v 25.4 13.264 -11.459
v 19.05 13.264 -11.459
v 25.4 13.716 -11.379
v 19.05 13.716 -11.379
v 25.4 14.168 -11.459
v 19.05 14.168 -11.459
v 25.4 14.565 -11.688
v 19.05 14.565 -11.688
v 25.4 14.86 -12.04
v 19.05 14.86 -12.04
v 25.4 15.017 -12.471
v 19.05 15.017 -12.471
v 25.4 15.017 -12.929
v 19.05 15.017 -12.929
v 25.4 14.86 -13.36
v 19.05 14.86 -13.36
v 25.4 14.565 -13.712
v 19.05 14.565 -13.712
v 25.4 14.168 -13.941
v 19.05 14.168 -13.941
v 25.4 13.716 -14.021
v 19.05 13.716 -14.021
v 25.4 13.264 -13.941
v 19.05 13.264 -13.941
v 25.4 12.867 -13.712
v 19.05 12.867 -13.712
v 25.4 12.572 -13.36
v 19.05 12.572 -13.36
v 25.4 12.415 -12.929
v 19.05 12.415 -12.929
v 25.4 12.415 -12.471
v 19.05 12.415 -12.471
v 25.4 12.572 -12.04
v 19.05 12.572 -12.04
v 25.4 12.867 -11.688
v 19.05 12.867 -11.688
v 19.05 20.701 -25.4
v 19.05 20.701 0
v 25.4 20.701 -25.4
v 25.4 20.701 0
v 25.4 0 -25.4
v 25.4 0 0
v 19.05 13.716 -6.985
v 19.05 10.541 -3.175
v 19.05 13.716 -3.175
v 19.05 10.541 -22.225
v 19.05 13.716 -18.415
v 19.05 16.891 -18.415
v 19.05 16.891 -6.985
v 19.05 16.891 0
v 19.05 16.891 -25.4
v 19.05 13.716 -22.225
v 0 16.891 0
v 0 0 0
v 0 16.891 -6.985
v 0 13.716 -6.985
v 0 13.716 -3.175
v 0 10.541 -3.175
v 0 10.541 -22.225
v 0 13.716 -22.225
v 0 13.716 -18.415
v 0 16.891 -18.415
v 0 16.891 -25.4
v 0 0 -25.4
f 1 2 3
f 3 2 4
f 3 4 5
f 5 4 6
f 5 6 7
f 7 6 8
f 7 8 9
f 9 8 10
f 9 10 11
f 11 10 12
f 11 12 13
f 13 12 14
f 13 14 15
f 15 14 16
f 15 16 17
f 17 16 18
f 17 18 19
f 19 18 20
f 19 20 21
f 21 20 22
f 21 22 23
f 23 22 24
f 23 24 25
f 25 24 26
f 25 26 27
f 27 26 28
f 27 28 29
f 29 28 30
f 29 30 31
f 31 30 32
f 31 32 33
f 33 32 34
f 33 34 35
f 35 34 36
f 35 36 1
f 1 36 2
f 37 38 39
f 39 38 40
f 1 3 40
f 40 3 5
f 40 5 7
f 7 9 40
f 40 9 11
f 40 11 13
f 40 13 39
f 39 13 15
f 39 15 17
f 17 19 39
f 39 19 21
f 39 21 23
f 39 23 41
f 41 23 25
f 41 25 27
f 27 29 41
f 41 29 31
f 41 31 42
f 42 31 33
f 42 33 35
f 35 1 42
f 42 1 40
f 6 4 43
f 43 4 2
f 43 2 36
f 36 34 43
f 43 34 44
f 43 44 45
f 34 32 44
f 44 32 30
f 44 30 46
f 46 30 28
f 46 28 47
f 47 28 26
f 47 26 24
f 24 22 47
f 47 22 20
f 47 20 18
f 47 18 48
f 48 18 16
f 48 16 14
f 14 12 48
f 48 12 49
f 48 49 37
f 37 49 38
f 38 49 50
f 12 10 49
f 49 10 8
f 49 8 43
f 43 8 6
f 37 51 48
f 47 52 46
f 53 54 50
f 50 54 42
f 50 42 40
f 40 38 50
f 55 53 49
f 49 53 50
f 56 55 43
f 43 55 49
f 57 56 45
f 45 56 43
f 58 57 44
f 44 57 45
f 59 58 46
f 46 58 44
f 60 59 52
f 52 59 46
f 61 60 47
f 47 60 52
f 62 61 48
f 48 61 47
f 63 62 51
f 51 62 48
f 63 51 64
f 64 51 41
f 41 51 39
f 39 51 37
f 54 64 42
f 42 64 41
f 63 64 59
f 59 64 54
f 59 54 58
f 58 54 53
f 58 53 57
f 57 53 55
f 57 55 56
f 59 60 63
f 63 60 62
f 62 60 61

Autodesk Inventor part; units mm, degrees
ref_plane "YZ Plane" through (0, 0, 0) normal (1, 0, 0) x (0, 1, 0)
ref_plane "XZ Plane" through (0, 0, 0) normal (0, 1, 0) x (-1, 0, 0)
ref_plane "XY Plane" through (0, 0, 0) normal (0, 0, 1) x (1, 0, 0)
sketch "Sketch1" plane through (0, 0, 0) normal (1, 0, 0) x (0, 1, 0)
  line L0 (0, 0) -> (16.891, 0)
  line L1 (16.891, 0) -> (16.891, -25.4)
  line L2 (16.891, -25.4) -> (0, -25.4)
  line L3 (0, -25.4) -> (0, 0)
  line L4 (16.891, -6.985) -> (13.716, -6.985)
  line L5 (13.716, -6.985) -> (13.716, -3.175)
  line L6 (13.716, -3.175) -> (10.541, -3.175)
  line L7 (10.541, -3.175) -> (10.541, -22.225)
  line L8 (10.541, -22.225) -> (13.716, -22.225)
  line L9 (13.716, -22.225) -> (13.716, -18.415)
  line L10 (13.716, -18.415) -> (16.891, -18.415)
  dimension "d0" = 25.4
  dimension "d1" = 11.43
  dimension "d2" = 19.05
  dimension "d3" = 3.81
  dimension "d4" = 6.985
  dimension "d5" = 3.175
  dimension "d6" = 6.35
  dimension "d7" = 16.891
extrude "Extrusion1" add sketch "Sketch1" along normal blind 19.05 contours L0 L1 L4 L5 L6 L7 L8 L9 L10 L2 L3
sketch "Sketch2" plane through (19.05, 0, 0) normal (1, 0, 0) x (0, 0, -1)
  line L0 (0, 0) -> (25.4, 0)
  line L1 (25.4, 0) -> (25.4, 20.701)
  line L2 (25.4, 20.701) -> (0, 20.701)
  line L3 (0, 20.701) -> (0, 0)
  line L4 (25.4, 16.891) -> (18.415, 16.891) projected
  dimension "d10" = 3.81
  dimension "d11" = 25.4
extrude "Extrusion2" add sketch "Sketch2" along normal blind 6.35
sketch "Sketch4" plane through (19.05, 0, 0) normal (-1, 0, 0) x (0, 0, 1)
  circle A0 centre (-12.7, 13.716) radius 1.3208
  line L0 (0, 16.891) -> (0, 0) projected
  line L1 (-22.225, 10.541) -> (-3.175, 10.541) projected
  line L2 (-3.175, 13.716) -> (-6.985, 13.716) projected
  dimension "d21" = 2.6416
  dimension "d22" = 12.7
  dimension "d23" = 3.175
  dimension "d24" = 0
extrude "Extrusion3" cut sketch "Sketch4" against normal through all
equation "\"d3\" = -0.5 * d1 + 0.5 * d2"
equation "\"d4\" = -0.5 * d1 + 0.5 * d0"
properties part number "tenshoner base"
